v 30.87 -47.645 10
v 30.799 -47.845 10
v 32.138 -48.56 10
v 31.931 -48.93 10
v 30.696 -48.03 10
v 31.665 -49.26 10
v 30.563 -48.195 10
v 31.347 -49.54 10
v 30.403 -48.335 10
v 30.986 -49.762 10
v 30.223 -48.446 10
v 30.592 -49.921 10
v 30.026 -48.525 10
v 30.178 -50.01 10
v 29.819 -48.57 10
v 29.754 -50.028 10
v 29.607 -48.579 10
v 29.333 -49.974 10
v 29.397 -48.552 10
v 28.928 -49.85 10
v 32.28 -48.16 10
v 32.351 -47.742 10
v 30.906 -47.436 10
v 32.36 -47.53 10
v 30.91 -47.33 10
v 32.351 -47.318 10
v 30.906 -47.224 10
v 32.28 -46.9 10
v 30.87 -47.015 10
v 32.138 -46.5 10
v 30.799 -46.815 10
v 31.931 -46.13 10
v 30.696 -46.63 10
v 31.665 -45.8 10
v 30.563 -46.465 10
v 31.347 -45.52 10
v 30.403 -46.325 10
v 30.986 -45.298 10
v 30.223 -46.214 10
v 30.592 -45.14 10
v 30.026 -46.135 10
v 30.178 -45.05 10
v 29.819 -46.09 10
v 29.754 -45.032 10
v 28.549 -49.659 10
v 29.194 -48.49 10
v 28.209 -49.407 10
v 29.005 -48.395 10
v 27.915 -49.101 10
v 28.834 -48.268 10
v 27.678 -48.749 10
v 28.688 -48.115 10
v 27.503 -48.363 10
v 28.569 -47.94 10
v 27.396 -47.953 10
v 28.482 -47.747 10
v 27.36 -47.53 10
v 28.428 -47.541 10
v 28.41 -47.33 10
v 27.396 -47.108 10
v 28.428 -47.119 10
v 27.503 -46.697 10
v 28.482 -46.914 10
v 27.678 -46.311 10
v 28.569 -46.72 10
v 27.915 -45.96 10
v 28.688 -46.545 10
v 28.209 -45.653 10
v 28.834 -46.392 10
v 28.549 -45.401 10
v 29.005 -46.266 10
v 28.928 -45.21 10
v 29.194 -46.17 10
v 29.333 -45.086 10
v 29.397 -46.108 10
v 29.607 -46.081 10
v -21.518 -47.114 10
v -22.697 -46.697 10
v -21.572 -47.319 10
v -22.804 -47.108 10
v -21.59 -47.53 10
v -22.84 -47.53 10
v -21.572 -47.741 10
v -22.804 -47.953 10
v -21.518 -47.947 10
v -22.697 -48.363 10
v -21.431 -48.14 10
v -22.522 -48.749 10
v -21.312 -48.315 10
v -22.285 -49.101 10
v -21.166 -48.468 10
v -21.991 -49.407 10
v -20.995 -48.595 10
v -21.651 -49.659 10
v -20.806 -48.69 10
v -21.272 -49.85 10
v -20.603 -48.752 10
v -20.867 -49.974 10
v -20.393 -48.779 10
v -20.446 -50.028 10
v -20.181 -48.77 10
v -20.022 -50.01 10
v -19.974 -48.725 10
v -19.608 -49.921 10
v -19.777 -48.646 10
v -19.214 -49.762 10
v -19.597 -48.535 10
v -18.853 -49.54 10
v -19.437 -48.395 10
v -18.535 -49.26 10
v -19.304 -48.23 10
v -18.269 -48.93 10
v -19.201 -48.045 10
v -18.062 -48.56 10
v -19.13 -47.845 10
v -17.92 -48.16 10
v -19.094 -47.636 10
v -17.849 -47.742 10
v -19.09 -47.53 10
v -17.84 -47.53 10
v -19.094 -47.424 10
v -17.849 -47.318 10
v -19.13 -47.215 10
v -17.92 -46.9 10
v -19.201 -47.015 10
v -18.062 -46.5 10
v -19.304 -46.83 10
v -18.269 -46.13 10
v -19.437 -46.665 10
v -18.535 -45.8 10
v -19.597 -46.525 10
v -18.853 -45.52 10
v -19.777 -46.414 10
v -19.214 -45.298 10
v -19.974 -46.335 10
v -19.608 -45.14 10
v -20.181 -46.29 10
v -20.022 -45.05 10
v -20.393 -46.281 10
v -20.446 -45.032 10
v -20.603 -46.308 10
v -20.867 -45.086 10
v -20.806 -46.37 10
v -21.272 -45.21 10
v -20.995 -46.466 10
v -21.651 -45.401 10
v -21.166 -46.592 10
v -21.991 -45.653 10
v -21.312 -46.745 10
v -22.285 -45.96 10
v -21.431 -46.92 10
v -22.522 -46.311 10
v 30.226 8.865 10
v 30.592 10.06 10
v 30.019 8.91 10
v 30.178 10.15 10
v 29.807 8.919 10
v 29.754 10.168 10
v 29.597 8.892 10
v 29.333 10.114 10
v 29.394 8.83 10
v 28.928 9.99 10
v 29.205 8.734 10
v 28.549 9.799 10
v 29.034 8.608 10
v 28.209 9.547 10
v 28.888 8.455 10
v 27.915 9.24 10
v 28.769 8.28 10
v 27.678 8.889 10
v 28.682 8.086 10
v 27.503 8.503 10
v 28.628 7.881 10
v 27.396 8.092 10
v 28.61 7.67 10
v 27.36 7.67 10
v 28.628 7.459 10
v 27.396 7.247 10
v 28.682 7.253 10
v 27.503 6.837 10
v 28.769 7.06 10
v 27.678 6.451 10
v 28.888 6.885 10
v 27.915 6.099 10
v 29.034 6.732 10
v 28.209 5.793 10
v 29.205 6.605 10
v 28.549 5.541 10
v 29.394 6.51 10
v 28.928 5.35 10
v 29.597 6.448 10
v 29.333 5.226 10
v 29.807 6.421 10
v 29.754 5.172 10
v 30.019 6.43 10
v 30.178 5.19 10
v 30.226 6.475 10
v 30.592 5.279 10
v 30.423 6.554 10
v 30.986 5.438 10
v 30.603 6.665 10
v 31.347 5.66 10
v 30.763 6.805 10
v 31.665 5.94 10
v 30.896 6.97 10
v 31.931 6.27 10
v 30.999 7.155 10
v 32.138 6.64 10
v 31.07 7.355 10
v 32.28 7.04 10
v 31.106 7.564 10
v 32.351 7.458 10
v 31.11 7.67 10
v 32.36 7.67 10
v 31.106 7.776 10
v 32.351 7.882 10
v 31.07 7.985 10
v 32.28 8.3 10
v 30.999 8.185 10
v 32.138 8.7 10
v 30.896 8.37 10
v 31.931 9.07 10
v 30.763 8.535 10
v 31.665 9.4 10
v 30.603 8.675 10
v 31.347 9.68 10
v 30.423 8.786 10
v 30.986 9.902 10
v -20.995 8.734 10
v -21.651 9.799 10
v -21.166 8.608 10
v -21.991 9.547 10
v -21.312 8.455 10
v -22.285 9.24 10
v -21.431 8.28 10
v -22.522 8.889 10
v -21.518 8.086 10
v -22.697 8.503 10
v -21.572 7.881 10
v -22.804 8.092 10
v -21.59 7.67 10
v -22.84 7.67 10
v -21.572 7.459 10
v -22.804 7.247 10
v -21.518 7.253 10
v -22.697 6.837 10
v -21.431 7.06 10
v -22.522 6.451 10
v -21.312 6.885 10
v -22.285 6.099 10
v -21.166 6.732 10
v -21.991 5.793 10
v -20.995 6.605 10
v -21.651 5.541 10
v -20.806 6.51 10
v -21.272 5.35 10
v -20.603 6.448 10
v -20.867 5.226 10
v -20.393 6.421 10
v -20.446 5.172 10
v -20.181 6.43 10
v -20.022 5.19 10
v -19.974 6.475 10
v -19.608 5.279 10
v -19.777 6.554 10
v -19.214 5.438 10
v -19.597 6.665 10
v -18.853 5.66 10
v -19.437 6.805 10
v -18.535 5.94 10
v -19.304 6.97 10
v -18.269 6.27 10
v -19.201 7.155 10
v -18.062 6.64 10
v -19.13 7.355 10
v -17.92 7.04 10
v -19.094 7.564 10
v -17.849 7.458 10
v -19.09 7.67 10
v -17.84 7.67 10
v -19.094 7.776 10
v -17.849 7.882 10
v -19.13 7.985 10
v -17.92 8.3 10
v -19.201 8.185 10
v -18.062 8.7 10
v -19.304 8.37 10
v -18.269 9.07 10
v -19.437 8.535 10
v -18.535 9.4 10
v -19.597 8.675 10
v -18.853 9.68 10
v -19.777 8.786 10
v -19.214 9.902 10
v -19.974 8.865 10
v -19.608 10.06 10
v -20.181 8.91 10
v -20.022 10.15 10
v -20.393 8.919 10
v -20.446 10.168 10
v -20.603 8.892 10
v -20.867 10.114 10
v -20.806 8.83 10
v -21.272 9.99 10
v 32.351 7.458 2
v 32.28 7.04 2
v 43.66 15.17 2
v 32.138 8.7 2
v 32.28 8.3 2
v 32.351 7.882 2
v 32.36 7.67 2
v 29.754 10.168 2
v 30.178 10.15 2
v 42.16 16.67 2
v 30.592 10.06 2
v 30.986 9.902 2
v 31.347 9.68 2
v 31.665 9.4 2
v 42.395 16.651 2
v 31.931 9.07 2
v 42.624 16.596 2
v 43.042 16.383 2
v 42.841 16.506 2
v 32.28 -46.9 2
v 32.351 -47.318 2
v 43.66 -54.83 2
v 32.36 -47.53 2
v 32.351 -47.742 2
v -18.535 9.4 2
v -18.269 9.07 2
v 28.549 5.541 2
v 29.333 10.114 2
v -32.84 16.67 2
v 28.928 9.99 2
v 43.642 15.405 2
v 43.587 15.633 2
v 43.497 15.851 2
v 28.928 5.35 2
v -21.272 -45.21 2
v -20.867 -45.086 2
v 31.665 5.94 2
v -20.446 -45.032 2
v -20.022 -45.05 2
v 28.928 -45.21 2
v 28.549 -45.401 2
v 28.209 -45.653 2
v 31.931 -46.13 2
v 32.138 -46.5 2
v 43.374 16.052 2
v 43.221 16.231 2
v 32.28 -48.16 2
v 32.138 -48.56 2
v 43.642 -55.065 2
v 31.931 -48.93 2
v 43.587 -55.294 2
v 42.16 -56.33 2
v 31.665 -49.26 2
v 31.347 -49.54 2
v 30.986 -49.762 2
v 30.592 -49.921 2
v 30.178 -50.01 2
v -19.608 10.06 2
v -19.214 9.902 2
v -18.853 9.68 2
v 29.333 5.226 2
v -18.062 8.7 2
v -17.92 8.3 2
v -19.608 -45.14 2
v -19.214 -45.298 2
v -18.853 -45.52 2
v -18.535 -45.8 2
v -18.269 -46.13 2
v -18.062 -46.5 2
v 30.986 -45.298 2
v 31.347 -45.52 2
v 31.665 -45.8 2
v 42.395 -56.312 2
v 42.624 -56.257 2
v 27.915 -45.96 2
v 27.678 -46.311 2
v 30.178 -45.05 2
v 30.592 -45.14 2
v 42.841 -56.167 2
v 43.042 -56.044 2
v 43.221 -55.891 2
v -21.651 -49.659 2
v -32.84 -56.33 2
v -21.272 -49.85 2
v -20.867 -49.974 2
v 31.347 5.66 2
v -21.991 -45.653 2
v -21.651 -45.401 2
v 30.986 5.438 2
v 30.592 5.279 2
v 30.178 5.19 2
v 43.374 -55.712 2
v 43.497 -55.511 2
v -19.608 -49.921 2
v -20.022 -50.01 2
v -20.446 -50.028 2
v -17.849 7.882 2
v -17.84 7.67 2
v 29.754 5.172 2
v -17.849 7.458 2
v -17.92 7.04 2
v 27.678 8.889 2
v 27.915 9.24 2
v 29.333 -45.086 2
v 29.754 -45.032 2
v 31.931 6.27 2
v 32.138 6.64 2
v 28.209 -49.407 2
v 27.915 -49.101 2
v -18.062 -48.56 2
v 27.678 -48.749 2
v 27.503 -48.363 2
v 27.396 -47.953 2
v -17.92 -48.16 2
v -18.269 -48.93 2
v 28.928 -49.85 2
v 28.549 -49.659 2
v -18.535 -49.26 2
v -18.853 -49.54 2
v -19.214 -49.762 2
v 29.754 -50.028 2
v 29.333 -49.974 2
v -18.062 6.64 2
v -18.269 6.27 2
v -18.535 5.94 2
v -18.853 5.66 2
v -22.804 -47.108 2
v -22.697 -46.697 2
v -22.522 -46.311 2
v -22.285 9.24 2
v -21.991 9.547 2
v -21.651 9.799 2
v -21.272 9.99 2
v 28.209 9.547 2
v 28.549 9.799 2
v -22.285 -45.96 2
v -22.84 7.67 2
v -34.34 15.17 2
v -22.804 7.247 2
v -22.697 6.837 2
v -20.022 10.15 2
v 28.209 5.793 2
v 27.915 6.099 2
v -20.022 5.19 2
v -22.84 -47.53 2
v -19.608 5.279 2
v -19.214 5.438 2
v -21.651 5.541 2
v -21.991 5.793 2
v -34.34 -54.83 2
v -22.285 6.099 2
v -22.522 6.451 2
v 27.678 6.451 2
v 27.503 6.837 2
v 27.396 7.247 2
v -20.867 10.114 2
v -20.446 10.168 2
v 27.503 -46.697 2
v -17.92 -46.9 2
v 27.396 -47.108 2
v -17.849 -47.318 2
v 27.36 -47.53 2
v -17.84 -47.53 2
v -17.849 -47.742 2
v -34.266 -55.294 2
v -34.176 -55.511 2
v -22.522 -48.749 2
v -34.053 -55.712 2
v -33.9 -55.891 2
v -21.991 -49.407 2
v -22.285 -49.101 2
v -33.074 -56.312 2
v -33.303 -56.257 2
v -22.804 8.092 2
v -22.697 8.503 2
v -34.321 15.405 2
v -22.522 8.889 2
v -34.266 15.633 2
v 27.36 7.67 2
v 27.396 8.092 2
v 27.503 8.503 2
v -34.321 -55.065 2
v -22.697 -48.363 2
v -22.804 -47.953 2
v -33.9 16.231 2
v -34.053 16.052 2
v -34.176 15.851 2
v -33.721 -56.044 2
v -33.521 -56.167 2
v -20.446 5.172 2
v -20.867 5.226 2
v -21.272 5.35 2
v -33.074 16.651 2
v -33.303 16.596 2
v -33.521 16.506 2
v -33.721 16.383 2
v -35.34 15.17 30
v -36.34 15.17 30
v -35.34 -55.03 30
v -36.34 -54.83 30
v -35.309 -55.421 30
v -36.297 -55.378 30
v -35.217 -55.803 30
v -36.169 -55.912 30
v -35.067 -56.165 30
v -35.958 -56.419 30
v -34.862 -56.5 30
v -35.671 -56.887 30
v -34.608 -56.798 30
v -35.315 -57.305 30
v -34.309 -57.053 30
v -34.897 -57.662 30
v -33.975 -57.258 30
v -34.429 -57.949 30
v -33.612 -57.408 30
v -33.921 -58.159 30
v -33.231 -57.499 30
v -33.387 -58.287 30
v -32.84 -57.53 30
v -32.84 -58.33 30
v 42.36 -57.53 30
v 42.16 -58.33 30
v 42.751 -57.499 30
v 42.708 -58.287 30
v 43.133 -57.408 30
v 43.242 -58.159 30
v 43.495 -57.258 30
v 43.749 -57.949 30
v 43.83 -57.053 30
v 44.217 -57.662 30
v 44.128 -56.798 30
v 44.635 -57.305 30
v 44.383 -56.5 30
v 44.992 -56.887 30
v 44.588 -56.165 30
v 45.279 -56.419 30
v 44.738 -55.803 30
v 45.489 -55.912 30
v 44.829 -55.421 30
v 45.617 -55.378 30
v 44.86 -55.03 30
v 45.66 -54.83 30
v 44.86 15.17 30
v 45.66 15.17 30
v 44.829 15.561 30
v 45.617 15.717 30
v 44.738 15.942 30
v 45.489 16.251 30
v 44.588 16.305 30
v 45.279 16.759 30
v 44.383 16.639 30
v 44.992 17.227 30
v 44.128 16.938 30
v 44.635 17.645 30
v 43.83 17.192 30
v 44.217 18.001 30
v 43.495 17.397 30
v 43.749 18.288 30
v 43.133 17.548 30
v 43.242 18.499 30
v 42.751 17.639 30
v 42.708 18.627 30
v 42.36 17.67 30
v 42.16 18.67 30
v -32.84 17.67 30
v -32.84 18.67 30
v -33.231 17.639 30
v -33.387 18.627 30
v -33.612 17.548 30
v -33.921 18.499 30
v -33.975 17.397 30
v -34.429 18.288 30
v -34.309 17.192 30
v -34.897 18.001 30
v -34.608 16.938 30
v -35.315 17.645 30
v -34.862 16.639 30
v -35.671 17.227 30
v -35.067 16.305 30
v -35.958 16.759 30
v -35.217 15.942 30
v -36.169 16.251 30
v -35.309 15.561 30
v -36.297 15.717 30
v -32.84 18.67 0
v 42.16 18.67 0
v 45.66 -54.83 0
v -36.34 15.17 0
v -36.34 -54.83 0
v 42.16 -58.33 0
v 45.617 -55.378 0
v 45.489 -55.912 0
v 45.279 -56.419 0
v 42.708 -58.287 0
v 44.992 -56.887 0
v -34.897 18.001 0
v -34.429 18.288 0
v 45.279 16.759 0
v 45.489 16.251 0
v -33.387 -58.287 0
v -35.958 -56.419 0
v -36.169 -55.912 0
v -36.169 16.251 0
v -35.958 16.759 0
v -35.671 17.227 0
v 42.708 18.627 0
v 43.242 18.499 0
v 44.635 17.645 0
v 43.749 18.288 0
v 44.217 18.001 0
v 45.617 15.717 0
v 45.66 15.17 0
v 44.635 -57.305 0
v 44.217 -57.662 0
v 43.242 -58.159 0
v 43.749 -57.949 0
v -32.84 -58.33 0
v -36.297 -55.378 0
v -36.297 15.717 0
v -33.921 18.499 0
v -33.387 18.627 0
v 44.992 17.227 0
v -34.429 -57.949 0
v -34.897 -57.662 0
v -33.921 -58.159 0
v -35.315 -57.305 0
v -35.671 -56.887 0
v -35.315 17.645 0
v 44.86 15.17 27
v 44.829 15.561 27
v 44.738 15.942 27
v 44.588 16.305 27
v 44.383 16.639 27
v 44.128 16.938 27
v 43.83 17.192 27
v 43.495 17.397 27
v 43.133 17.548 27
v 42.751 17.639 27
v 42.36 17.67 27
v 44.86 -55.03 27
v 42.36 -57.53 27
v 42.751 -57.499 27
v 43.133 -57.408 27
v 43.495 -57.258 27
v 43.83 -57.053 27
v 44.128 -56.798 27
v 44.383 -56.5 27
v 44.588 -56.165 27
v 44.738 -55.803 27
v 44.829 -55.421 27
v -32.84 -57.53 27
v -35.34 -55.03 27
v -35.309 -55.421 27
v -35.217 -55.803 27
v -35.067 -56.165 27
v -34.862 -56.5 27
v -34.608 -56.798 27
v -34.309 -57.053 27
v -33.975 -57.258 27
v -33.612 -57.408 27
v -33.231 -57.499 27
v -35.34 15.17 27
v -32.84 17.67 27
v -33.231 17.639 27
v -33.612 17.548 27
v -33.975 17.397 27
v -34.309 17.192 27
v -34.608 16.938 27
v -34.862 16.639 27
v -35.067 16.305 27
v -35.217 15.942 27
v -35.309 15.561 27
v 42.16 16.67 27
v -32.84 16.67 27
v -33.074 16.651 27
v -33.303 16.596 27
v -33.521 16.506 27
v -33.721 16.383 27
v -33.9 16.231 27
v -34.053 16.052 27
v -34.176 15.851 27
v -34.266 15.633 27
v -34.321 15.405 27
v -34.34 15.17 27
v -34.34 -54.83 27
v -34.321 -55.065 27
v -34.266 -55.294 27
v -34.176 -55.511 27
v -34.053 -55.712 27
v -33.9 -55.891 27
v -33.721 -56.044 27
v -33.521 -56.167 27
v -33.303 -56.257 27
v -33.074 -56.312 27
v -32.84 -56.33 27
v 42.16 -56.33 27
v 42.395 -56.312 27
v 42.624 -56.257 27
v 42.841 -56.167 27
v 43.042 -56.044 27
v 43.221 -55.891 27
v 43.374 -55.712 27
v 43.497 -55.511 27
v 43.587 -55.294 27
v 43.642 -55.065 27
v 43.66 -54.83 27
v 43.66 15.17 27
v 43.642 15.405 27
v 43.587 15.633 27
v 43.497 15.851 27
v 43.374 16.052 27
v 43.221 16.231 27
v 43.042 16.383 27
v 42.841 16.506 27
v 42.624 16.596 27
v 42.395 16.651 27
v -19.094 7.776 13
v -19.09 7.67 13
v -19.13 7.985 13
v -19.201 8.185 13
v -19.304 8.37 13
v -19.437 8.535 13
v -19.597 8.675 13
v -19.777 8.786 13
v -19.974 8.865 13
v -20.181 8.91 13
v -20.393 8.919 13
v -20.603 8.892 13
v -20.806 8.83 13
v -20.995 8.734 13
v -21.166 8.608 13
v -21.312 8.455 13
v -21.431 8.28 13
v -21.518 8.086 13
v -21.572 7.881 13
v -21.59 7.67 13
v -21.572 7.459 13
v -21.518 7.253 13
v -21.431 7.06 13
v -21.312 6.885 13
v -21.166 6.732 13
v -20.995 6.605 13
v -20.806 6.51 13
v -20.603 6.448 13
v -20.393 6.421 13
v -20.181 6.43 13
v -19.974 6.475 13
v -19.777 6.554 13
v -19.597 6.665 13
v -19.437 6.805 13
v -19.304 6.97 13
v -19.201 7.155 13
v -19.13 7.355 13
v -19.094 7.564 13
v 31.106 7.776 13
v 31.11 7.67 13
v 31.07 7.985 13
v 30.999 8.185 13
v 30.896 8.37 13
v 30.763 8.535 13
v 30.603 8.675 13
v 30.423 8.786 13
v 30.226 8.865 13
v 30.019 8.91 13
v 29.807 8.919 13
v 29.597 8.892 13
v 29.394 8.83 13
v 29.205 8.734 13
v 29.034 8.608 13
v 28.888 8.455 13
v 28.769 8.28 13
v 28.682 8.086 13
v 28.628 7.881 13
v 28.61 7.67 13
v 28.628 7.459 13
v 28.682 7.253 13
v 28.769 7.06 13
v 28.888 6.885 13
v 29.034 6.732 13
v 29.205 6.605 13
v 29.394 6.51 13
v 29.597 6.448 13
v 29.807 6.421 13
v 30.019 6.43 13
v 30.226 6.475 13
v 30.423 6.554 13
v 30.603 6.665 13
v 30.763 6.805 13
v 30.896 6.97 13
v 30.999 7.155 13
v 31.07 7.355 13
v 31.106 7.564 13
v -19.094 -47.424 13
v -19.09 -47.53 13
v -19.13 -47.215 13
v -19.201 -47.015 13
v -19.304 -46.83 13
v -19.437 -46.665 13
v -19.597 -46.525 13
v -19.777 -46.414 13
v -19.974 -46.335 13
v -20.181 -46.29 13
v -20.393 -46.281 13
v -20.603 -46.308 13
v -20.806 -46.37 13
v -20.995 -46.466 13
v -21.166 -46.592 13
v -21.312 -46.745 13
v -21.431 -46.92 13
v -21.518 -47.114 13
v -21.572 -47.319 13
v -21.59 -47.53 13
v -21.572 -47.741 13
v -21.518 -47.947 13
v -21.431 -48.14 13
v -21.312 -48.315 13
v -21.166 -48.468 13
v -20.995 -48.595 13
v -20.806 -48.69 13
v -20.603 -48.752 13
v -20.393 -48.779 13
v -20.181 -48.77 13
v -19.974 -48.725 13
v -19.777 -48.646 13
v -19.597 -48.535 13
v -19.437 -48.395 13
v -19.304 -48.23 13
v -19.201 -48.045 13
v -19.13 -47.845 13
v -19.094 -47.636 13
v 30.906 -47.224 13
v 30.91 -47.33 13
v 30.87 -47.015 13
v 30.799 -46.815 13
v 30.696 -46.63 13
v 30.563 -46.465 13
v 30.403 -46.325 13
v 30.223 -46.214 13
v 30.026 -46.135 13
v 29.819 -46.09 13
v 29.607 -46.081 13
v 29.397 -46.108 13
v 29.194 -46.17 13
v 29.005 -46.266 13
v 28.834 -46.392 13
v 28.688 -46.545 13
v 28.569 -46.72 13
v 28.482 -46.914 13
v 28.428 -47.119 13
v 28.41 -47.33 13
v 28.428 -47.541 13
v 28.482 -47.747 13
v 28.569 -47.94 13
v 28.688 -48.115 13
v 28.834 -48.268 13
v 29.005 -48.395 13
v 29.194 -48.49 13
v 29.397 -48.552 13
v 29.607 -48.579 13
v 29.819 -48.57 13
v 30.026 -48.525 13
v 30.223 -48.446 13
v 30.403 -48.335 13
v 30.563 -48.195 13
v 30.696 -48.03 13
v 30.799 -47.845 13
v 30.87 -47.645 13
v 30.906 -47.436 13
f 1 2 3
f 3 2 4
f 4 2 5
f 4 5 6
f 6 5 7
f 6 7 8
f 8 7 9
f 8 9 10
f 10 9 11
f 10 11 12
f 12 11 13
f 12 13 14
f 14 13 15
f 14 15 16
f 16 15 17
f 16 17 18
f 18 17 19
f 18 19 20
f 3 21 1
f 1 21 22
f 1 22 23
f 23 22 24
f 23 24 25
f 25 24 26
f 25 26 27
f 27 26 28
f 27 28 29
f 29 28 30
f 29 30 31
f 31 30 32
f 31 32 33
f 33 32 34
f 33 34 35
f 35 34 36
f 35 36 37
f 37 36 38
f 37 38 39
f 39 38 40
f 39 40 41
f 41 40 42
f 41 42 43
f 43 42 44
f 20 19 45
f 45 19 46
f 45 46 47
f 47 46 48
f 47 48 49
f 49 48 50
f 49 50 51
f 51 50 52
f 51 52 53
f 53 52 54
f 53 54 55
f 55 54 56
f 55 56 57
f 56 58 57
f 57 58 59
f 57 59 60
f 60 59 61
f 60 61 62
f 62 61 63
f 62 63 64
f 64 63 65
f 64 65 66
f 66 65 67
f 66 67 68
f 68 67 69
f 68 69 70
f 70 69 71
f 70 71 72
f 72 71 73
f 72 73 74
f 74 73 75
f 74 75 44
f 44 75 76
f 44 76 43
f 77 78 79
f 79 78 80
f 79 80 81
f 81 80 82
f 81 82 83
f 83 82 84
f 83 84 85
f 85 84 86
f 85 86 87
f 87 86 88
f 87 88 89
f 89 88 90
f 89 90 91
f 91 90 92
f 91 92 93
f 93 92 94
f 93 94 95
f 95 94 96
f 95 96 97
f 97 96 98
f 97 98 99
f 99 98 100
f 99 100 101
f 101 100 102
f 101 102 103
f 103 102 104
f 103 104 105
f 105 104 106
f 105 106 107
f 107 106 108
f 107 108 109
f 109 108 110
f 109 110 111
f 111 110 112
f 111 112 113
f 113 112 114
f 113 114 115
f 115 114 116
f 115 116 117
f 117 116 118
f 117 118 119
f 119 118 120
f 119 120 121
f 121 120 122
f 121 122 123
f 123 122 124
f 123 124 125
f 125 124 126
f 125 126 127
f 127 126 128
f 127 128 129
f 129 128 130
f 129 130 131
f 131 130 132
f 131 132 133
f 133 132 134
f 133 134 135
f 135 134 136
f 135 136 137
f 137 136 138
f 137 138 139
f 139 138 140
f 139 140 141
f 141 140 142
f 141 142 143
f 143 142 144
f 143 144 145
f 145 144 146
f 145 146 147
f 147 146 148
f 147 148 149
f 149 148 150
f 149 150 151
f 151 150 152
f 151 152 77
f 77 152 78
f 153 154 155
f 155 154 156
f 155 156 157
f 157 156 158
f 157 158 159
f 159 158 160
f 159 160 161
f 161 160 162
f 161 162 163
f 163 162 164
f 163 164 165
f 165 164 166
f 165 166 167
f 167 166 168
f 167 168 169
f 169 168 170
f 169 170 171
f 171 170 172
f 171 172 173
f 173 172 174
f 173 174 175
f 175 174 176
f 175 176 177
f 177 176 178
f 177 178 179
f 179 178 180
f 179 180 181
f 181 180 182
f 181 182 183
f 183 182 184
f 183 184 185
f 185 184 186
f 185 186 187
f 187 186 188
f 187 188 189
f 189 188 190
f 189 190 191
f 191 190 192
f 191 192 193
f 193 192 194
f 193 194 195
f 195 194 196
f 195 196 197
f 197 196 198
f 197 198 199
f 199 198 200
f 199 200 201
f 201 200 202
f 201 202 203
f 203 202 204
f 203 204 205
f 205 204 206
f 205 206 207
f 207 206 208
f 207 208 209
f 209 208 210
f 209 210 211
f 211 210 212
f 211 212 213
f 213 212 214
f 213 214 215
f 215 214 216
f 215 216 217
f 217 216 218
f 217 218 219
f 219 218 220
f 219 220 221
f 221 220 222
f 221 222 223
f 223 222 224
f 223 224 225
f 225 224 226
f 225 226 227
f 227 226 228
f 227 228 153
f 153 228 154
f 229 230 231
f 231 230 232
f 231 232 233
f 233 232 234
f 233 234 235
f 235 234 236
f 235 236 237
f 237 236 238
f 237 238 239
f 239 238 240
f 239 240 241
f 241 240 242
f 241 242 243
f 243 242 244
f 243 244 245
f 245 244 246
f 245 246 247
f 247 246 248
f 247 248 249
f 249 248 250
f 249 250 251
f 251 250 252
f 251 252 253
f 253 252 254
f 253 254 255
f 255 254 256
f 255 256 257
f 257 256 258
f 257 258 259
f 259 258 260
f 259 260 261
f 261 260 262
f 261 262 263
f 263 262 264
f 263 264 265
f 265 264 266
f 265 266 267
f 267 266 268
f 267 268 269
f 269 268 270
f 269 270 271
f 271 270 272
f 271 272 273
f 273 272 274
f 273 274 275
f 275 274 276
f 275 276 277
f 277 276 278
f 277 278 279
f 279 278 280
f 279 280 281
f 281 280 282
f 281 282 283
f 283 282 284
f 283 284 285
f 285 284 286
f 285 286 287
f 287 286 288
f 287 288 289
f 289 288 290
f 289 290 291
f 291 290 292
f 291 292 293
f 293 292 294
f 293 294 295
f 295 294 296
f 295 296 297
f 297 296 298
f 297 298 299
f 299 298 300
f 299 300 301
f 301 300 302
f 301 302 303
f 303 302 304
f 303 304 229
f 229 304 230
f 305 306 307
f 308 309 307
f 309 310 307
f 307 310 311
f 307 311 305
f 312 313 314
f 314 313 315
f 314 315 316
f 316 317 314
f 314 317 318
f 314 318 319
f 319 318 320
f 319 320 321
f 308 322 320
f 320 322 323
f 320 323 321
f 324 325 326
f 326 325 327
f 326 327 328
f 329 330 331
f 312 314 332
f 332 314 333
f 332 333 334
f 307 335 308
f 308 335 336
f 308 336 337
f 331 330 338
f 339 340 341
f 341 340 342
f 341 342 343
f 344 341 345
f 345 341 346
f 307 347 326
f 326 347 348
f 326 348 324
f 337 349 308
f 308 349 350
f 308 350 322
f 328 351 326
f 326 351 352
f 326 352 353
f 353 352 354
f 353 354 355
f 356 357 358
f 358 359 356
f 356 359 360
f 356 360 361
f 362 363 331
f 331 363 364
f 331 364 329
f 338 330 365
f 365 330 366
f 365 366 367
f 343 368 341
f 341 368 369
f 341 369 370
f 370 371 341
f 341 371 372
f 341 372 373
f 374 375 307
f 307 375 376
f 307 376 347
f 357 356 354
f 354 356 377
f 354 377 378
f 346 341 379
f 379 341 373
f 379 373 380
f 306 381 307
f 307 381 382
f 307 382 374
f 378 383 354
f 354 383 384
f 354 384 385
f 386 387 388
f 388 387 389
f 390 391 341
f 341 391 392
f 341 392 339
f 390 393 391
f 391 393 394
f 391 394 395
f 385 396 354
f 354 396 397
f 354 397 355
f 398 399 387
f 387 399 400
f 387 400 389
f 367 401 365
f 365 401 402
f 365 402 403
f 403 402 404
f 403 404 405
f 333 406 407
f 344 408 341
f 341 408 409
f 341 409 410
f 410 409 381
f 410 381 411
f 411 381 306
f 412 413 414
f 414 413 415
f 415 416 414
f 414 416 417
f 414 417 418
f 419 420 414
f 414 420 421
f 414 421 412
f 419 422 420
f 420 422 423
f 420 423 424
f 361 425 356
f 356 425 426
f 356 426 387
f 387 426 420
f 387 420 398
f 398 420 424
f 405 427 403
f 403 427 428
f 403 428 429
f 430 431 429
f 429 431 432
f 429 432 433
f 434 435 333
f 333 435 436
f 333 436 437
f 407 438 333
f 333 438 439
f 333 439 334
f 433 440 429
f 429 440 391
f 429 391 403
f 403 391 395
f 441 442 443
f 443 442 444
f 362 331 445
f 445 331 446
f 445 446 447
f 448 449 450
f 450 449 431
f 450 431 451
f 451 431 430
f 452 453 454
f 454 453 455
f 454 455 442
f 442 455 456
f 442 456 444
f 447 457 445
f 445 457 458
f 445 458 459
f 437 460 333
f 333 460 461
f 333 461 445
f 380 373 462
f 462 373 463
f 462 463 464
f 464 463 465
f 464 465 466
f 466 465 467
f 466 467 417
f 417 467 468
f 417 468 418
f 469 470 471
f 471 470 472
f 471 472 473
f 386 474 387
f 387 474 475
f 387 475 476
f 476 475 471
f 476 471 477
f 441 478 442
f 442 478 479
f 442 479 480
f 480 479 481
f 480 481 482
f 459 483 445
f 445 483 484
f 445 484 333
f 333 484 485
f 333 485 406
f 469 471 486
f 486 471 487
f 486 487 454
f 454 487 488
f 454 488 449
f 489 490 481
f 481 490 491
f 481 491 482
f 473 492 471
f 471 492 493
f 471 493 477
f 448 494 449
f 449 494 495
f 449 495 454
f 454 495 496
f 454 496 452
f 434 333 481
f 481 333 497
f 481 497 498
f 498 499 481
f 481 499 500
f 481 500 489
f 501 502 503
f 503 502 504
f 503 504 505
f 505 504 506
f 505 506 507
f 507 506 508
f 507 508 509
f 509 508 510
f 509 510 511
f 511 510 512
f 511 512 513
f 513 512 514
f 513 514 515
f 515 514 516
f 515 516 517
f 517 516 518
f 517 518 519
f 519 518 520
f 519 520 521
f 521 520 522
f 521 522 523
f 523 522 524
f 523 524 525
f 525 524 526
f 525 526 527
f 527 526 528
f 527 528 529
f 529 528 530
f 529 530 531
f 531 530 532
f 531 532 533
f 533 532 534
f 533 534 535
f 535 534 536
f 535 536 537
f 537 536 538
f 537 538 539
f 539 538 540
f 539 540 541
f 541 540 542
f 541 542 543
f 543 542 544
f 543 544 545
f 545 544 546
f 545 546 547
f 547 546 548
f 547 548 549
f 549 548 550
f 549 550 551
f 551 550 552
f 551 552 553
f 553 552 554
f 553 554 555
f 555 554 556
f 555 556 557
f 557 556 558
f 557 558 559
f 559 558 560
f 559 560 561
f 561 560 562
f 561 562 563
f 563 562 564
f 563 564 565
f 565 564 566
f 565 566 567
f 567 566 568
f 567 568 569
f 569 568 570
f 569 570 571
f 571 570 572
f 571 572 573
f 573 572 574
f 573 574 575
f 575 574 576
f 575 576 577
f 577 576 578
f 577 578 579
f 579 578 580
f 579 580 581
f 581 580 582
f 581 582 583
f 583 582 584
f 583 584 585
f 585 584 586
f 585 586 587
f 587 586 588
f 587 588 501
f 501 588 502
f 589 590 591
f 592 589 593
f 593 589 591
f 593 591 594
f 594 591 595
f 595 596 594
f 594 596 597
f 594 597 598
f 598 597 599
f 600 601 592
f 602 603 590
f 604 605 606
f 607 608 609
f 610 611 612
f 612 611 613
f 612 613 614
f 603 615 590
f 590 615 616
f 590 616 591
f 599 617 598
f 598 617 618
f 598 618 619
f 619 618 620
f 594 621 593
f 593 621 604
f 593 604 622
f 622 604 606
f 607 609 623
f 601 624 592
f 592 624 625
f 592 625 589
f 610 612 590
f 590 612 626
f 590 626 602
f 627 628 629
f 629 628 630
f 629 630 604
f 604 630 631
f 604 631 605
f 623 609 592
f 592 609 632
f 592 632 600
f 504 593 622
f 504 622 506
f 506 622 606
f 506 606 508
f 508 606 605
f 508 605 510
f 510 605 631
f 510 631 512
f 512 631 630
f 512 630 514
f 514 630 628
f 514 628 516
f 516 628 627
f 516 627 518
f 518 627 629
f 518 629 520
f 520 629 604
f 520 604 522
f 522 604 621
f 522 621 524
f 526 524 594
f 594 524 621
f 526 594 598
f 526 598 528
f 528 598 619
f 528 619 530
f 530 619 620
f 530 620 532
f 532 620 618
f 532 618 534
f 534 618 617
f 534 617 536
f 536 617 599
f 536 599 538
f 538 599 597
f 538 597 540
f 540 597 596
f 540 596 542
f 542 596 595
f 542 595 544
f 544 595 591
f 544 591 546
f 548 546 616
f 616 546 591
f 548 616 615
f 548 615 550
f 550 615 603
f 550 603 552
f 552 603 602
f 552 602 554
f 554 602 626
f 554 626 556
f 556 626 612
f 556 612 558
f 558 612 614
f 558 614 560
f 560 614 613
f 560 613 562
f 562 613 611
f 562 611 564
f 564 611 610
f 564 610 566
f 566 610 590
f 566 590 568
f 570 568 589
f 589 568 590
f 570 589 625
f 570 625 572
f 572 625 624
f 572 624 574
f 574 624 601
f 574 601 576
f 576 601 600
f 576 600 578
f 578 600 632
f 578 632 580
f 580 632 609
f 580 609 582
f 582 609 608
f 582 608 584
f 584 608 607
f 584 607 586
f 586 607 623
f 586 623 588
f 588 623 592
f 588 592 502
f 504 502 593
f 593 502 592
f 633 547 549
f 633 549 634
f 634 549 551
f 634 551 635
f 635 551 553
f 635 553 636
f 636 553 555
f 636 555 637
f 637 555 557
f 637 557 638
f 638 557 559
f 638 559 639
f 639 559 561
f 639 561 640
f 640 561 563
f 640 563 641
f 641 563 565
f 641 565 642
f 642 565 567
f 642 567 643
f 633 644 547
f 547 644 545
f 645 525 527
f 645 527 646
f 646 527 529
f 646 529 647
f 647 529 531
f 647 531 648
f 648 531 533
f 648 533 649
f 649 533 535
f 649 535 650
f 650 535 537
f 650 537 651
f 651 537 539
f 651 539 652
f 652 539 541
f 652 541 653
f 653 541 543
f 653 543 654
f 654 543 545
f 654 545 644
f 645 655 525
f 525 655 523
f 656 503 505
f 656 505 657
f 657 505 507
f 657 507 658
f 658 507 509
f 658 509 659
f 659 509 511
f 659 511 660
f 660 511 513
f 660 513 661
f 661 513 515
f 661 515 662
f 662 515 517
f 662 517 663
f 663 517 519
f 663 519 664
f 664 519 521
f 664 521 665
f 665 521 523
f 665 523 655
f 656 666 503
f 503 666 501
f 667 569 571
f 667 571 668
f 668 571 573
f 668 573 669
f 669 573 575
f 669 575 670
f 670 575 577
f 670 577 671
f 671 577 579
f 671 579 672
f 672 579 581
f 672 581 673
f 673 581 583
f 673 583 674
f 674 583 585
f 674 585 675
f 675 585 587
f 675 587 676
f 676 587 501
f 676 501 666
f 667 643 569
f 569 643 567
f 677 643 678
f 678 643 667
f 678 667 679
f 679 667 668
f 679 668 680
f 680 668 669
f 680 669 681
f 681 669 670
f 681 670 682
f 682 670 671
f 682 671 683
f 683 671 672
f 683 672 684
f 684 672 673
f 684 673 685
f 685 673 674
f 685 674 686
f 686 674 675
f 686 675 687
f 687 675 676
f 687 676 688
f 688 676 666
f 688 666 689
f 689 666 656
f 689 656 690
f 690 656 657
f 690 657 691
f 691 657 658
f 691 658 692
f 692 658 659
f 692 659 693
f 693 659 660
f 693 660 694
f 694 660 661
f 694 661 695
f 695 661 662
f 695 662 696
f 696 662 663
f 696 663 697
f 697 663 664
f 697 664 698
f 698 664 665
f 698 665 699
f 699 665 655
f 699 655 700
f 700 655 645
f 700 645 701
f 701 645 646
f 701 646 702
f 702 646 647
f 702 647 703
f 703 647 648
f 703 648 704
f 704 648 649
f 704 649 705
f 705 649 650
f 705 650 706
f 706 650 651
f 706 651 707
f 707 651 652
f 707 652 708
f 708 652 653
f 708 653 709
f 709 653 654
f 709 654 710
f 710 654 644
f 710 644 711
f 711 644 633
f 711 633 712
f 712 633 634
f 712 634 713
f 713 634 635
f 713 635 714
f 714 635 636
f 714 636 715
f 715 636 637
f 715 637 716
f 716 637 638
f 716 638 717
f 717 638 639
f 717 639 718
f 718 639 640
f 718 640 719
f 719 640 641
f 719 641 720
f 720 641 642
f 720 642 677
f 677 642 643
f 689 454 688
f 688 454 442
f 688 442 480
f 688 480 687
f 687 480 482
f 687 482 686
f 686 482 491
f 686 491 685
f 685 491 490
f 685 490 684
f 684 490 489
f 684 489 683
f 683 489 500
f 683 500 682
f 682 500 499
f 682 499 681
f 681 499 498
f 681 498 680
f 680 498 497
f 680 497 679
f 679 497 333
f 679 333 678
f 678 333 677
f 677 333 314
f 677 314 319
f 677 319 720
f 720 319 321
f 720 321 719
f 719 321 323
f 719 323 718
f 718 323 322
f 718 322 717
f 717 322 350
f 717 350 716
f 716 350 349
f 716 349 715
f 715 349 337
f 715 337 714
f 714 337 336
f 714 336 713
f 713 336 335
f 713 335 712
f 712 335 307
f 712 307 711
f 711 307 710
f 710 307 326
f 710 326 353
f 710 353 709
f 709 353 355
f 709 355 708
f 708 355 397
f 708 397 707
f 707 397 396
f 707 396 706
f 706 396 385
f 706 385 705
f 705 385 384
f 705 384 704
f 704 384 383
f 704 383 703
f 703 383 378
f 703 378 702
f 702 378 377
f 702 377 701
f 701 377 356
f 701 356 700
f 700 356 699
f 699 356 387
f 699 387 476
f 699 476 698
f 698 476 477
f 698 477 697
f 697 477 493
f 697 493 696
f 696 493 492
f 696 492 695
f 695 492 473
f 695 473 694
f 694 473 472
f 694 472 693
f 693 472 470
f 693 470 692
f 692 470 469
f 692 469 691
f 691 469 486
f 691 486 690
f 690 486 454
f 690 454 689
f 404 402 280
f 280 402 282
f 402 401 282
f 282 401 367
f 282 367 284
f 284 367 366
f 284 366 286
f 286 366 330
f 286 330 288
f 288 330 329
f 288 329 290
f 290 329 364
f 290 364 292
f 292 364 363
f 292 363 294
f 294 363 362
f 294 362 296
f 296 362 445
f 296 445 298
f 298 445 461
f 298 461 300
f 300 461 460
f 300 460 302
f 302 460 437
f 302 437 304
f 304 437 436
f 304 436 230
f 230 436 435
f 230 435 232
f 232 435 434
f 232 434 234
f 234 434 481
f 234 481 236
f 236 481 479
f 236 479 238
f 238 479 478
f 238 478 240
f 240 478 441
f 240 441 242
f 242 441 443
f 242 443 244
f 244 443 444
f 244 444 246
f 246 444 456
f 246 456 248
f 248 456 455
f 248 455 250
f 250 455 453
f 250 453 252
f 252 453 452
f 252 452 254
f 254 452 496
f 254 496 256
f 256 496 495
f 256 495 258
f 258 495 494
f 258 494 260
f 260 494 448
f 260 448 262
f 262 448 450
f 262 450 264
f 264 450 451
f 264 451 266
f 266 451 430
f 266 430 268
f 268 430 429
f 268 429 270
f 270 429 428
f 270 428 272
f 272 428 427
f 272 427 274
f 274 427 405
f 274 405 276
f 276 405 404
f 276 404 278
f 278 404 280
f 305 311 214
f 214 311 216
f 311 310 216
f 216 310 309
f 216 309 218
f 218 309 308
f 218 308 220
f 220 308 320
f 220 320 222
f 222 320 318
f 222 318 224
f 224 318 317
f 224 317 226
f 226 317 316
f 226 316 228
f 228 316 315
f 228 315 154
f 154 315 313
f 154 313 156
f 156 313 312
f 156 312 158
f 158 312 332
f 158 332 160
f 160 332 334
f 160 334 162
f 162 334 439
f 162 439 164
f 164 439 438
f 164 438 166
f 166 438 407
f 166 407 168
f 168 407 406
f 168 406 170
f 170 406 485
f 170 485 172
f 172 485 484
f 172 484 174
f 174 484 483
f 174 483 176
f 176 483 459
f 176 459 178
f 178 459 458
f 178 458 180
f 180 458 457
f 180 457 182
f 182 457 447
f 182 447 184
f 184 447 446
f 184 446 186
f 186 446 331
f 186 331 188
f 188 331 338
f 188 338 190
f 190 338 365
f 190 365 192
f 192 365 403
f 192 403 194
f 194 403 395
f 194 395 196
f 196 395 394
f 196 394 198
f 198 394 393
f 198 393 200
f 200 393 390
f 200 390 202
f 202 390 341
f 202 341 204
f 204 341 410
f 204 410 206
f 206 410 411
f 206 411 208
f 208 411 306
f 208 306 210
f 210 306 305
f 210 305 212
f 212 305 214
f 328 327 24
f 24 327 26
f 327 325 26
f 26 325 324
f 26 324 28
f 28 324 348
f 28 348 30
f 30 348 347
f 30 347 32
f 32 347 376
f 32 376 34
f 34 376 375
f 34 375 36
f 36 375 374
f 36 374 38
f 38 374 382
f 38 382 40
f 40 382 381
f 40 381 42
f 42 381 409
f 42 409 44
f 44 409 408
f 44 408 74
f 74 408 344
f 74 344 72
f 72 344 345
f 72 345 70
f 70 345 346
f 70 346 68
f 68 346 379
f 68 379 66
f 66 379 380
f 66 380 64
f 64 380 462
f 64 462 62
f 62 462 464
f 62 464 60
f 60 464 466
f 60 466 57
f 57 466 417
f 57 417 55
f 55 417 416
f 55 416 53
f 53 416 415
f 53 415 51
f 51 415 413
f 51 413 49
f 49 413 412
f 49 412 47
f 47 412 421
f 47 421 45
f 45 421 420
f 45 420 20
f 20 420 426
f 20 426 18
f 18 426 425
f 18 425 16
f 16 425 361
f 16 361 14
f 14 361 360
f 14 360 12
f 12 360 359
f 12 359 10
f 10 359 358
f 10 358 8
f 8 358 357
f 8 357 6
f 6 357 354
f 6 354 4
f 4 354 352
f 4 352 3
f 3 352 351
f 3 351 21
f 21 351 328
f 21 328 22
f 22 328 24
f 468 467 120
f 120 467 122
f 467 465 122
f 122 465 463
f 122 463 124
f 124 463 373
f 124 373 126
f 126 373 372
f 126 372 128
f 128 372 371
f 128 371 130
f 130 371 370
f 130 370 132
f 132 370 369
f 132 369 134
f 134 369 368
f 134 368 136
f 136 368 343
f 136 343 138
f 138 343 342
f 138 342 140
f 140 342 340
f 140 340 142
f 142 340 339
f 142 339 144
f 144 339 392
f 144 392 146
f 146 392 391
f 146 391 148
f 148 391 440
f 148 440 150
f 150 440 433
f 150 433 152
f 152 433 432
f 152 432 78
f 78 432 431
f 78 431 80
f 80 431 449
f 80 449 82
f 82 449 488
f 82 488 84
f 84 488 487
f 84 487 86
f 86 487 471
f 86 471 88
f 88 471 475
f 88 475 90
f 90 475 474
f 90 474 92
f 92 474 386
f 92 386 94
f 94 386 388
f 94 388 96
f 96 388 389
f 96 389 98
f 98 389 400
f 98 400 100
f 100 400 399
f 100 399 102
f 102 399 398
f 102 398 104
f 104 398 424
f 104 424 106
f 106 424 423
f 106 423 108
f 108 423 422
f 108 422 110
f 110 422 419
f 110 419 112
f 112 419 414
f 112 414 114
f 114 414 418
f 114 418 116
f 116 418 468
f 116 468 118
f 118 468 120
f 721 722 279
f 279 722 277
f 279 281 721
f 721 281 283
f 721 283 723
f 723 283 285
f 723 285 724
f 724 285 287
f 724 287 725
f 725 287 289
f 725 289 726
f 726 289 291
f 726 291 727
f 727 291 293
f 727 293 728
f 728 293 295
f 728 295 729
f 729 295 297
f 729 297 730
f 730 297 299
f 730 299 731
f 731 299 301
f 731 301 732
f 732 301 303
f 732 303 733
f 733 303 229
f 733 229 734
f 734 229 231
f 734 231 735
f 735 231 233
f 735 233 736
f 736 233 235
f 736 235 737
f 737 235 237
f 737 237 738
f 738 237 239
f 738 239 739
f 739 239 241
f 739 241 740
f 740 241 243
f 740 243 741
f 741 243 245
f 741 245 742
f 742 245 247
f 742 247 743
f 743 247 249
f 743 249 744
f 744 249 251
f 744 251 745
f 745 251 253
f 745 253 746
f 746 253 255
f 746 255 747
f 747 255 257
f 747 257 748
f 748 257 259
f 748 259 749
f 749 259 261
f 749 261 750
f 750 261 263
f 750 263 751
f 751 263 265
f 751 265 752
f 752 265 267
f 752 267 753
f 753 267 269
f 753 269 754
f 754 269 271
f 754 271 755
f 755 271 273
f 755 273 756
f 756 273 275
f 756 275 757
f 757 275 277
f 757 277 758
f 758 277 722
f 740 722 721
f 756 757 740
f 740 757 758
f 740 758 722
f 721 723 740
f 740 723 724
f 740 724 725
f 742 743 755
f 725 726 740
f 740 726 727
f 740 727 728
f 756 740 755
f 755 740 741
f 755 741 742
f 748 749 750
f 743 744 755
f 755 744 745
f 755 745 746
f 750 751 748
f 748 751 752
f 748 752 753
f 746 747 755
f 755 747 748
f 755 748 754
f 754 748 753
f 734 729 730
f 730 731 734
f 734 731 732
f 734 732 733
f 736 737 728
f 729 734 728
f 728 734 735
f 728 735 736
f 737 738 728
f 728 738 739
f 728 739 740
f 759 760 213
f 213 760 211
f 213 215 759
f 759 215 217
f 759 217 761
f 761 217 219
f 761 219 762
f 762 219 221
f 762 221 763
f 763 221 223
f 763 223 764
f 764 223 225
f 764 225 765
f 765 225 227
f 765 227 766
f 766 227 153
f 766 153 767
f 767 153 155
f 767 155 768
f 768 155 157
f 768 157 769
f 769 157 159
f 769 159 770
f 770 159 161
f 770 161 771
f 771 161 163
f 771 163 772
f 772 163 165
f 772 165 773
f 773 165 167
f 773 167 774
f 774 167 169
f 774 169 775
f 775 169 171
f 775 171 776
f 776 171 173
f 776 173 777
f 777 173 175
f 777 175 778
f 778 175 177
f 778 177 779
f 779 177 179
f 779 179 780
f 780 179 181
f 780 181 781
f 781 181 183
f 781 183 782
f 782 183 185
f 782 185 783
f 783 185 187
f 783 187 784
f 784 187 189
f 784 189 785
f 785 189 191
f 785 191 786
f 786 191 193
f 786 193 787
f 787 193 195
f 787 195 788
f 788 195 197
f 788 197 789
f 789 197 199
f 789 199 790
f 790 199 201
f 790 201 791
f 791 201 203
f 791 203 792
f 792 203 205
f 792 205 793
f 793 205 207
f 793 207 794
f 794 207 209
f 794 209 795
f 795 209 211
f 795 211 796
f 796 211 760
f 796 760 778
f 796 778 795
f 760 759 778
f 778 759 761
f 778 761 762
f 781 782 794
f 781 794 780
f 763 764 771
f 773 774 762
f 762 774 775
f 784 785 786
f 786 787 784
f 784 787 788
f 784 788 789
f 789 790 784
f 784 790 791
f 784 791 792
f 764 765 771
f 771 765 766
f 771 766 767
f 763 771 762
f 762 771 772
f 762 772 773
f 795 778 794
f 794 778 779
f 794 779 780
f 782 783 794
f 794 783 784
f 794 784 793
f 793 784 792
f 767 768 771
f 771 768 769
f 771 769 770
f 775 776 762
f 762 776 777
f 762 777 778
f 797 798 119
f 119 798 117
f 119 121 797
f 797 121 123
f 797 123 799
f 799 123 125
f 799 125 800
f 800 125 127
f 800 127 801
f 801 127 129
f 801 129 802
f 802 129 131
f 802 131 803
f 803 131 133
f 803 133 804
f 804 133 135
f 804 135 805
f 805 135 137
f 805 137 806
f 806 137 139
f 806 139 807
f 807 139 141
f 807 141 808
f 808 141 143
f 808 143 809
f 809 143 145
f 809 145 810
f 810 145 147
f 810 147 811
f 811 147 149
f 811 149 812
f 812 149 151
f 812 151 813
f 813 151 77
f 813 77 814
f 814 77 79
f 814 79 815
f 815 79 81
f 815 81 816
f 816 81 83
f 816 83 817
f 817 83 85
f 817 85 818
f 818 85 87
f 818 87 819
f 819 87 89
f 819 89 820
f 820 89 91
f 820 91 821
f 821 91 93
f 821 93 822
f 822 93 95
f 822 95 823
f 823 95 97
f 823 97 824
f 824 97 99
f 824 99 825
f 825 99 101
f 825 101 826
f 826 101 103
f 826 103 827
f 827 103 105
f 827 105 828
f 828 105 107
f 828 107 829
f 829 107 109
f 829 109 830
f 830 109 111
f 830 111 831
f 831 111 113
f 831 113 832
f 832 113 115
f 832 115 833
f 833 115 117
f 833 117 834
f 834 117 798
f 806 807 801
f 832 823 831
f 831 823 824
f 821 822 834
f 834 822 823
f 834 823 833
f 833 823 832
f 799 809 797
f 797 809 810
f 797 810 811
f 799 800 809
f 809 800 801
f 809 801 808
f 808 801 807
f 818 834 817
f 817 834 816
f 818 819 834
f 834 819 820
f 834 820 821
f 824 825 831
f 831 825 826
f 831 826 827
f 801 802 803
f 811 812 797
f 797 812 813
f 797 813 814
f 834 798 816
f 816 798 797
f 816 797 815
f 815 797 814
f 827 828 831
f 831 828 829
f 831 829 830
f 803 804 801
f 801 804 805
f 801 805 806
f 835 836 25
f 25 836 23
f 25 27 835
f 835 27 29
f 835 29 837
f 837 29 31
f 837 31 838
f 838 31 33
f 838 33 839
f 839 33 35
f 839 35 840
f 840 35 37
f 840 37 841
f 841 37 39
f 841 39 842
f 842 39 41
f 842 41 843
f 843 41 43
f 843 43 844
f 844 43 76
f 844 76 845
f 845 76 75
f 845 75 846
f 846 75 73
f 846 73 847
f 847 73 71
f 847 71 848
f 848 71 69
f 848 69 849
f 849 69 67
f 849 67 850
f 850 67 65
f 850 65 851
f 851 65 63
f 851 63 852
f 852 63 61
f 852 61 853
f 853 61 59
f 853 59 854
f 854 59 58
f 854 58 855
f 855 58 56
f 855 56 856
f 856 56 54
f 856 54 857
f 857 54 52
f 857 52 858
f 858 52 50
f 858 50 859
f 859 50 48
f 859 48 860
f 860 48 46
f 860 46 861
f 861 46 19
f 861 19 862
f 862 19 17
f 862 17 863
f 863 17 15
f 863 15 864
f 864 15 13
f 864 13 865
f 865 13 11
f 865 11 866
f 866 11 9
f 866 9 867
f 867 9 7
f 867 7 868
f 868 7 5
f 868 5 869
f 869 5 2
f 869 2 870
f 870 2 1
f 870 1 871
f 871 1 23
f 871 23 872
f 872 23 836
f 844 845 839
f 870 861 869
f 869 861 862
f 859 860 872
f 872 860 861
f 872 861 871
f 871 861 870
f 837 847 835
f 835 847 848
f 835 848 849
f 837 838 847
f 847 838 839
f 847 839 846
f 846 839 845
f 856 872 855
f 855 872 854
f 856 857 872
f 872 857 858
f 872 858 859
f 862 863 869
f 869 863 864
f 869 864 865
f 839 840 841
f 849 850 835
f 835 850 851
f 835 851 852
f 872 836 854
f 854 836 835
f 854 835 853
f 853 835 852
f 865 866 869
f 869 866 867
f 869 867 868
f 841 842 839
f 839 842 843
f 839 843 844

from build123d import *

# Parameters (mm, degrees)
EXTRU_MINCE1_DEPTH      = 30
BOSS_EXTRU_1_DEPTH      = 2
ENL_V_MAT_EXTRU_1_DEPTH = 3
ESQUISSE3_R             = 2.5
BOSS_EXTRU_2_DEPTH      = 8
ESQUISSE4_R             = 1.25
BOSS_EXTRU_3_DEPTH      = 3


with BuildPart() as part:
    # Esquisse1 → Extru.-Mince1 (new body)
    with BuildSketch(Plane.XY):
        with BuildLine():
            Line((42.160194175, -58.330097087), (-32.839805825, -58.330097087))
            ThreePointArc((-32.839805825, -58.330097087), (-35.314679559, -57.304970822), (-36.339805825, -54.830097087))
            Line((-36.339805825, -54.830097087), (-36.339805825, 15.169902913))
            ThreePointArc((-36.339805825, 15.169902913), (-35.314679559, 17.644776647), (-32.839805825, 18.669902913))
            Line((-32.839805825, 18.669902913), (42.160194175, 18.669902913))
            ThreePointArc((42.160194175, 18.669902913), (44.635067909, 17.644776647), (45.660194175, 15.169902913))
            Line((45.660194175, 15.169902913), (45.660194175, -54.830097087))
            ThreePointArc((45.660194175, -54.830097087), (44.635067909, -57.304970822), (42.160194175, -58.330097087))
        make_face()
        with BuildLine():
            Line((42.160194175, -56.330097087), (-32.839805825, -56.330097087))
            ThreePointArc((-32.839805825, -56.330097087), (-33.900465997, -55.890757259), (-34.339805825, -54.830097087))
            Line((-34.339805825, -54.830097087), (-34.339805825, 15.169902913))
            ThreePointArc((-34.339805825, 15.169902913), (-33.900465997, 16.230563084), (-32.839805825, 16.669902913))
            Line((-32.839805825, 16.669902913), (42.160194175, 16.669902913))
            ThreePointArc((42.160194175, 16.669902913), (43.220854347, 16.230563084), (43.660194175, 15.169902913))
            Line((43.660194175, 15.169902913), (43.660194175, -54.830097087))
            ThreePointArc((43.660194175, -54.830097087), (43.220854347, -55.890757259), (42.160194175, -56.330097087))
        make_face(mode=Mode.SUBTRACT)
    extrude(amount=EXTRU_MINCE1_DEPTH)

    # Esquisse1<2> → Boss.-Extru.1 (add)
    with BuildSketch(Plane.XY):
        with BuildLine():
            Line((-32.839805825, 17.669902913), (42.160194175, 17.669902913))
            ThreePointArc((42.160194175, 17.669902913), (43.927961128, 16.937669866), (44.660194175, 15.169902913))
            Line((44.660194175, 15.169902913), (44.660194175, -54.830097087))
            ThreePointArc((44.660194175, -54.830097087), (43.927961128, -56.59786404), (42.160194175, -57.330097087))
            Line((42.160194175, -57.330097087), (-32.839805825, -57.330097087))
            ThreePointArc((-32.839805825, -57.330097087), (-34.607572778, -56.59786404), (-35.339805825, -54.830097087))
            Line((-35.339805825, -54.830097087), (-35.339805825, 15.169902913))
            ThreePointArc((-35.339805825, 15.169902913), (-34.607572778, 16.937669866), (-32.839805825, 17.669902913))
        make_face()
    extrude(amount=BOSS_EXTRU_1_DEPTH)

    # Esquisse2 → Enlèv. mat.-Extru.1 (cut)
    with BuildSketch(Plane.XY.offset(30)):
        with BuildLine():
            Line((-32.839805825, 17.669902913), (42.360194175, 17.669902913))
            ThreePointArc((42.360194175, 17.669902913), (44.127961128, 16.937669866), (44.860194175, 15.169902913))
            Line((44.860194175, 15.169902913), (44.860194175, -55.030097087))
            ThreePointArc((44.860194175, -55.030097087), (44.127961128, -56.79786404), (42.360194175, -57.530097087))
            Line((42.360194175, -57.530097087), (-32.839805825, -57.530097087))
            ThreePointArc((-32.839805825, -57.530097087), (-34.607572778, -56.79786404), (-35.339805825, -55.030097087))
            Line((-35.339805825, -55.030097087), (-35.339805825, 15.169902913))
            ThreePointArc((-35.339805825, 15.169902913), (-34.607572778, 16.937669866), (-32.839805825, 17.669902913))
        make_face()
    extrude(amount=-ENL_V_MAT_EXTRU_1_DEPTH, mode=Mode.SUBTRACT)

    # Esquisse3 → Boss.-Extru.2 (add)
    with BuildSketch(Plane.XY.offset(2)):
        with Locations((-20.339805825, 7.669902913)):
            Circle(ESQUISSE3_R)
        with Locations((29.860194175, 7.669902913)):
            Circle(ESQUISSE3_R)
        with Locations((29.860194175, -47.530097087)):
            Circle(ESQUISSE3_R)
        with Locations((-20.339805825, -47.530097087)):
            Circle(ESQUISSE3_R)
    extrude(amount=BOSS_EXTRU_2_DEPTH)

    # Esquisse4 → Boss.-Extru.3 (add)
    with BuildSketch(Plane.XY.offset(10)):
        with Locations((-20.339805825, 7.669902913)):
            Circle(ESQUISSE4_R)
        with Locations((29.860194175, 7.669902913)):
            Circle(ESQUISSE4_R)
        with Locations((-20.339805825, -47.530097087)):
            Circle(ESQUISSE4_R)
        with Locations((29.660194175, -47.330097087)):
            Circle(ESQUISSE4_R)
    extrude(amount=BOSS_EXTRU_3_DEPTH)


solid = part.part
